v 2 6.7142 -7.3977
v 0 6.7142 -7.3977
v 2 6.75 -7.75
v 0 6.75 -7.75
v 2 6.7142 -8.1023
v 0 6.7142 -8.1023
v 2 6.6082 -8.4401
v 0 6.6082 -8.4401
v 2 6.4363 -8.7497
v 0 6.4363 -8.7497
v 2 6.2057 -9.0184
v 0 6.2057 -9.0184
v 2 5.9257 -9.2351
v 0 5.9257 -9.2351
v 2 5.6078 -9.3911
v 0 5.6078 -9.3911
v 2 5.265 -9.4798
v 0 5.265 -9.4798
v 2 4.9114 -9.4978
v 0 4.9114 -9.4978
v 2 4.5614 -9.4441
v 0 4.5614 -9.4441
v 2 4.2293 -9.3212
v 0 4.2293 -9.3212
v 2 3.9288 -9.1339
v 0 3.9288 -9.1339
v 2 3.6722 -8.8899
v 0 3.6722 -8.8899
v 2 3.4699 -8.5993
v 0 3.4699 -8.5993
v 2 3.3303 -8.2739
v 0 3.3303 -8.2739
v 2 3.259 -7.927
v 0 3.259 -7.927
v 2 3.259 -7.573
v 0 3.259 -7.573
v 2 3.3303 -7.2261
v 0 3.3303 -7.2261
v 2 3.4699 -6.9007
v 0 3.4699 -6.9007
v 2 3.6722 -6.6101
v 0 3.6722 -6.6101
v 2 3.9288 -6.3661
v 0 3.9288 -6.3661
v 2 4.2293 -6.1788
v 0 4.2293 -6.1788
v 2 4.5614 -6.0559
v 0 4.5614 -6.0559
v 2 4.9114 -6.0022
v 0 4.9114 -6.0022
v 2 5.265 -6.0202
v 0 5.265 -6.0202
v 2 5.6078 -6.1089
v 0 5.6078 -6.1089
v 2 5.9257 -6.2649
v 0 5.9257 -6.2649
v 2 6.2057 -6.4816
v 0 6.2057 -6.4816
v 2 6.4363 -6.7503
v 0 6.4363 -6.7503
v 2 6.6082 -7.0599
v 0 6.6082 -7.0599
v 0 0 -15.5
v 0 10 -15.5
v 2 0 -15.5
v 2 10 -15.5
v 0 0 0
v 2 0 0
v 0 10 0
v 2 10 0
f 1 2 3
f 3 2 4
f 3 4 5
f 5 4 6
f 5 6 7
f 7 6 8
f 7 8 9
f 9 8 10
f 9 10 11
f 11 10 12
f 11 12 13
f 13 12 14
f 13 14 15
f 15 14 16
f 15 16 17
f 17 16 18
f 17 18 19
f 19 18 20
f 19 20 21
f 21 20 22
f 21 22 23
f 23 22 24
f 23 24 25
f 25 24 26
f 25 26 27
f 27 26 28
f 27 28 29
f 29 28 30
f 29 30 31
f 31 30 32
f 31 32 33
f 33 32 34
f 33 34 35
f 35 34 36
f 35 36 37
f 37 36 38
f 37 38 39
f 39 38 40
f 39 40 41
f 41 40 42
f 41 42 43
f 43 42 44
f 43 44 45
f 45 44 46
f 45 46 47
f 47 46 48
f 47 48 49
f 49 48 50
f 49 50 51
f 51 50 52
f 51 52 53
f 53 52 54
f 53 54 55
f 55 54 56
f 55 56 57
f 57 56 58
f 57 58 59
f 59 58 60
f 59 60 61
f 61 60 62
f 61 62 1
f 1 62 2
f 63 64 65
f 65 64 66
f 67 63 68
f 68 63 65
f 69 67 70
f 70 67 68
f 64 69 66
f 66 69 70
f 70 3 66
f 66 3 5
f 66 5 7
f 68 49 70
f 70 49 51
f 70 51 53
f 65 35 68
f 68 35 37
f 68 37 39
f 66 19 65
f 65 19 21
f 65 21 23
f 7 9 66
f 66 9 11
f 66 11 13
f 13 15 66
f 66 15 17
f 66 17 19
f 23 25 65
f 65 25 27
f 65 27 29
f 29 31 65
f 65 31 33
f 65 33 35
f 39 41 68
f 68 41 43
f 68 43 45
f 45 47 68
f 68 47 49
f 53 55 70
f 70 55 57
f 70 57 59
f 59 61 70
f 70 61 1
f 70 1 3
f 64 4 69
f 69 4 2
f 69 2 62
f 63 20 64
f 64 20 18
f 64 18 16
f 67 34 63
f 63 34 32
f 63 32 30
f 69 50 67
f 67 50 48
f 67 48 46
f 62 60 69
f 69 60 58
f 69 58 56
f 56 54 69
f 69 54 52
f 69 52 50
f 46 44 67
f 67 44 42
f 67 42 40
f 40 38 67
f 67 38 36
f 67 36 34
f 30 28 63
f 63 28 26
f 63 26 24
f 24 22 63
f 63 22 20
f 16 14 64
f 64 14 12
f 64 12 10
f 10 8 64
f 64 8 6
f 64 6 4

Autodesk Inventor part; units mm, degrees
ref_plane "YZ Plane" through (0, 0, 0) normal (1, 0, 0) x (0, 1, 0)
ref_plane "XZ Plane" through (0, 0, 0) normal (0, 1, 0) x (-1, 0, 0)
ref_plane "XY Plane" through (0, 0, 0) normal (0, 0, 1) x (1, 0, 0)
sketch "Sketch1" plane through (0, 0, 0) normal (1, 0, 0) x (0, 1, 0)
  line L0 (0, 0) -> (10, 0)
  line L1 (10, 0) -> (10, -3.5)
  line L2 (10, -3.5) -> (0, -3.5)
  line L3 (0, -3.5) -> (0, 0)
  line L4 (10, -3.5) -> (0, -3.5)
  line L5 (0, -3.5) -> (0, -6)
  line L6 (0, -6) -> (10, -6)
  line L7 (10, -6) -> (10, -3.5)
  line L8 (10, -6) -> (0, -6)
  line L9 (0, -6) -> (0, -9.5)
  line L10 (0, -9.5) -> (10, -9.5)
  line L11 (10, -9.5) -> (10, -6)
  line L12 (10, -9.5) -> (0, -9.5)
  line L13 (0, -9.5) -> (0, -12)
  line L14 (0, -12) -> (10, -12)
  line L15 (10, -12) -> (10, -9.5)
  line L16 (10, -12) -> (0, -12)
  line L17 (0, -12) -> (0, -15.5)
  line L18 (0, -15.5) -> (10, -15.5)
  line L19 (10, -15.5) -> (10, -12)
  line L20 (10, -7.75) -> (5, -7.75)
  circle A0 centre (5, -7.75) radius 1.75
  line L21 (6.75, -9.5) -> (3.25, -9.5)
  line L22 (3.25, -9.5) -> (3.25, -6)
  line L23 (3.25, -6) -> (6.75, -6)
  line L24 (6.75, -6) -> (6.75, -9.5)
  line L25 (6.75, -9.5) -> (3.25, -6) construction
  line L26 (3.25, -9.5) -> (6.75, -6) construction
  dimension "d0" = 10
  dimension "d1" = 3.5
  dimension "d2" = 2.5
  dimension "d3" = 3.5
  dimension "d4" = 2.5
  dimension "d5" = 3.5
  dimension "d8" = 3.5
  dimension "d11" = 3.5
extrude "Extrusion1" add sketch "Sketch1" along normal blind 2 contours L0 L1 L2 L3 | L2 L7 L6 L5 | L6 L22 L10 L9 | L11 L20 L24 L6 | L6 A0 L22 | L10 L15 L14 L13 | L24 A0 L6 | L11 L10 L24 L20 | A0 L10 L22 | L14 L19 L18 L17 | L24 L10 A0
properties part number "yellow_plate_screw_grip_2"
